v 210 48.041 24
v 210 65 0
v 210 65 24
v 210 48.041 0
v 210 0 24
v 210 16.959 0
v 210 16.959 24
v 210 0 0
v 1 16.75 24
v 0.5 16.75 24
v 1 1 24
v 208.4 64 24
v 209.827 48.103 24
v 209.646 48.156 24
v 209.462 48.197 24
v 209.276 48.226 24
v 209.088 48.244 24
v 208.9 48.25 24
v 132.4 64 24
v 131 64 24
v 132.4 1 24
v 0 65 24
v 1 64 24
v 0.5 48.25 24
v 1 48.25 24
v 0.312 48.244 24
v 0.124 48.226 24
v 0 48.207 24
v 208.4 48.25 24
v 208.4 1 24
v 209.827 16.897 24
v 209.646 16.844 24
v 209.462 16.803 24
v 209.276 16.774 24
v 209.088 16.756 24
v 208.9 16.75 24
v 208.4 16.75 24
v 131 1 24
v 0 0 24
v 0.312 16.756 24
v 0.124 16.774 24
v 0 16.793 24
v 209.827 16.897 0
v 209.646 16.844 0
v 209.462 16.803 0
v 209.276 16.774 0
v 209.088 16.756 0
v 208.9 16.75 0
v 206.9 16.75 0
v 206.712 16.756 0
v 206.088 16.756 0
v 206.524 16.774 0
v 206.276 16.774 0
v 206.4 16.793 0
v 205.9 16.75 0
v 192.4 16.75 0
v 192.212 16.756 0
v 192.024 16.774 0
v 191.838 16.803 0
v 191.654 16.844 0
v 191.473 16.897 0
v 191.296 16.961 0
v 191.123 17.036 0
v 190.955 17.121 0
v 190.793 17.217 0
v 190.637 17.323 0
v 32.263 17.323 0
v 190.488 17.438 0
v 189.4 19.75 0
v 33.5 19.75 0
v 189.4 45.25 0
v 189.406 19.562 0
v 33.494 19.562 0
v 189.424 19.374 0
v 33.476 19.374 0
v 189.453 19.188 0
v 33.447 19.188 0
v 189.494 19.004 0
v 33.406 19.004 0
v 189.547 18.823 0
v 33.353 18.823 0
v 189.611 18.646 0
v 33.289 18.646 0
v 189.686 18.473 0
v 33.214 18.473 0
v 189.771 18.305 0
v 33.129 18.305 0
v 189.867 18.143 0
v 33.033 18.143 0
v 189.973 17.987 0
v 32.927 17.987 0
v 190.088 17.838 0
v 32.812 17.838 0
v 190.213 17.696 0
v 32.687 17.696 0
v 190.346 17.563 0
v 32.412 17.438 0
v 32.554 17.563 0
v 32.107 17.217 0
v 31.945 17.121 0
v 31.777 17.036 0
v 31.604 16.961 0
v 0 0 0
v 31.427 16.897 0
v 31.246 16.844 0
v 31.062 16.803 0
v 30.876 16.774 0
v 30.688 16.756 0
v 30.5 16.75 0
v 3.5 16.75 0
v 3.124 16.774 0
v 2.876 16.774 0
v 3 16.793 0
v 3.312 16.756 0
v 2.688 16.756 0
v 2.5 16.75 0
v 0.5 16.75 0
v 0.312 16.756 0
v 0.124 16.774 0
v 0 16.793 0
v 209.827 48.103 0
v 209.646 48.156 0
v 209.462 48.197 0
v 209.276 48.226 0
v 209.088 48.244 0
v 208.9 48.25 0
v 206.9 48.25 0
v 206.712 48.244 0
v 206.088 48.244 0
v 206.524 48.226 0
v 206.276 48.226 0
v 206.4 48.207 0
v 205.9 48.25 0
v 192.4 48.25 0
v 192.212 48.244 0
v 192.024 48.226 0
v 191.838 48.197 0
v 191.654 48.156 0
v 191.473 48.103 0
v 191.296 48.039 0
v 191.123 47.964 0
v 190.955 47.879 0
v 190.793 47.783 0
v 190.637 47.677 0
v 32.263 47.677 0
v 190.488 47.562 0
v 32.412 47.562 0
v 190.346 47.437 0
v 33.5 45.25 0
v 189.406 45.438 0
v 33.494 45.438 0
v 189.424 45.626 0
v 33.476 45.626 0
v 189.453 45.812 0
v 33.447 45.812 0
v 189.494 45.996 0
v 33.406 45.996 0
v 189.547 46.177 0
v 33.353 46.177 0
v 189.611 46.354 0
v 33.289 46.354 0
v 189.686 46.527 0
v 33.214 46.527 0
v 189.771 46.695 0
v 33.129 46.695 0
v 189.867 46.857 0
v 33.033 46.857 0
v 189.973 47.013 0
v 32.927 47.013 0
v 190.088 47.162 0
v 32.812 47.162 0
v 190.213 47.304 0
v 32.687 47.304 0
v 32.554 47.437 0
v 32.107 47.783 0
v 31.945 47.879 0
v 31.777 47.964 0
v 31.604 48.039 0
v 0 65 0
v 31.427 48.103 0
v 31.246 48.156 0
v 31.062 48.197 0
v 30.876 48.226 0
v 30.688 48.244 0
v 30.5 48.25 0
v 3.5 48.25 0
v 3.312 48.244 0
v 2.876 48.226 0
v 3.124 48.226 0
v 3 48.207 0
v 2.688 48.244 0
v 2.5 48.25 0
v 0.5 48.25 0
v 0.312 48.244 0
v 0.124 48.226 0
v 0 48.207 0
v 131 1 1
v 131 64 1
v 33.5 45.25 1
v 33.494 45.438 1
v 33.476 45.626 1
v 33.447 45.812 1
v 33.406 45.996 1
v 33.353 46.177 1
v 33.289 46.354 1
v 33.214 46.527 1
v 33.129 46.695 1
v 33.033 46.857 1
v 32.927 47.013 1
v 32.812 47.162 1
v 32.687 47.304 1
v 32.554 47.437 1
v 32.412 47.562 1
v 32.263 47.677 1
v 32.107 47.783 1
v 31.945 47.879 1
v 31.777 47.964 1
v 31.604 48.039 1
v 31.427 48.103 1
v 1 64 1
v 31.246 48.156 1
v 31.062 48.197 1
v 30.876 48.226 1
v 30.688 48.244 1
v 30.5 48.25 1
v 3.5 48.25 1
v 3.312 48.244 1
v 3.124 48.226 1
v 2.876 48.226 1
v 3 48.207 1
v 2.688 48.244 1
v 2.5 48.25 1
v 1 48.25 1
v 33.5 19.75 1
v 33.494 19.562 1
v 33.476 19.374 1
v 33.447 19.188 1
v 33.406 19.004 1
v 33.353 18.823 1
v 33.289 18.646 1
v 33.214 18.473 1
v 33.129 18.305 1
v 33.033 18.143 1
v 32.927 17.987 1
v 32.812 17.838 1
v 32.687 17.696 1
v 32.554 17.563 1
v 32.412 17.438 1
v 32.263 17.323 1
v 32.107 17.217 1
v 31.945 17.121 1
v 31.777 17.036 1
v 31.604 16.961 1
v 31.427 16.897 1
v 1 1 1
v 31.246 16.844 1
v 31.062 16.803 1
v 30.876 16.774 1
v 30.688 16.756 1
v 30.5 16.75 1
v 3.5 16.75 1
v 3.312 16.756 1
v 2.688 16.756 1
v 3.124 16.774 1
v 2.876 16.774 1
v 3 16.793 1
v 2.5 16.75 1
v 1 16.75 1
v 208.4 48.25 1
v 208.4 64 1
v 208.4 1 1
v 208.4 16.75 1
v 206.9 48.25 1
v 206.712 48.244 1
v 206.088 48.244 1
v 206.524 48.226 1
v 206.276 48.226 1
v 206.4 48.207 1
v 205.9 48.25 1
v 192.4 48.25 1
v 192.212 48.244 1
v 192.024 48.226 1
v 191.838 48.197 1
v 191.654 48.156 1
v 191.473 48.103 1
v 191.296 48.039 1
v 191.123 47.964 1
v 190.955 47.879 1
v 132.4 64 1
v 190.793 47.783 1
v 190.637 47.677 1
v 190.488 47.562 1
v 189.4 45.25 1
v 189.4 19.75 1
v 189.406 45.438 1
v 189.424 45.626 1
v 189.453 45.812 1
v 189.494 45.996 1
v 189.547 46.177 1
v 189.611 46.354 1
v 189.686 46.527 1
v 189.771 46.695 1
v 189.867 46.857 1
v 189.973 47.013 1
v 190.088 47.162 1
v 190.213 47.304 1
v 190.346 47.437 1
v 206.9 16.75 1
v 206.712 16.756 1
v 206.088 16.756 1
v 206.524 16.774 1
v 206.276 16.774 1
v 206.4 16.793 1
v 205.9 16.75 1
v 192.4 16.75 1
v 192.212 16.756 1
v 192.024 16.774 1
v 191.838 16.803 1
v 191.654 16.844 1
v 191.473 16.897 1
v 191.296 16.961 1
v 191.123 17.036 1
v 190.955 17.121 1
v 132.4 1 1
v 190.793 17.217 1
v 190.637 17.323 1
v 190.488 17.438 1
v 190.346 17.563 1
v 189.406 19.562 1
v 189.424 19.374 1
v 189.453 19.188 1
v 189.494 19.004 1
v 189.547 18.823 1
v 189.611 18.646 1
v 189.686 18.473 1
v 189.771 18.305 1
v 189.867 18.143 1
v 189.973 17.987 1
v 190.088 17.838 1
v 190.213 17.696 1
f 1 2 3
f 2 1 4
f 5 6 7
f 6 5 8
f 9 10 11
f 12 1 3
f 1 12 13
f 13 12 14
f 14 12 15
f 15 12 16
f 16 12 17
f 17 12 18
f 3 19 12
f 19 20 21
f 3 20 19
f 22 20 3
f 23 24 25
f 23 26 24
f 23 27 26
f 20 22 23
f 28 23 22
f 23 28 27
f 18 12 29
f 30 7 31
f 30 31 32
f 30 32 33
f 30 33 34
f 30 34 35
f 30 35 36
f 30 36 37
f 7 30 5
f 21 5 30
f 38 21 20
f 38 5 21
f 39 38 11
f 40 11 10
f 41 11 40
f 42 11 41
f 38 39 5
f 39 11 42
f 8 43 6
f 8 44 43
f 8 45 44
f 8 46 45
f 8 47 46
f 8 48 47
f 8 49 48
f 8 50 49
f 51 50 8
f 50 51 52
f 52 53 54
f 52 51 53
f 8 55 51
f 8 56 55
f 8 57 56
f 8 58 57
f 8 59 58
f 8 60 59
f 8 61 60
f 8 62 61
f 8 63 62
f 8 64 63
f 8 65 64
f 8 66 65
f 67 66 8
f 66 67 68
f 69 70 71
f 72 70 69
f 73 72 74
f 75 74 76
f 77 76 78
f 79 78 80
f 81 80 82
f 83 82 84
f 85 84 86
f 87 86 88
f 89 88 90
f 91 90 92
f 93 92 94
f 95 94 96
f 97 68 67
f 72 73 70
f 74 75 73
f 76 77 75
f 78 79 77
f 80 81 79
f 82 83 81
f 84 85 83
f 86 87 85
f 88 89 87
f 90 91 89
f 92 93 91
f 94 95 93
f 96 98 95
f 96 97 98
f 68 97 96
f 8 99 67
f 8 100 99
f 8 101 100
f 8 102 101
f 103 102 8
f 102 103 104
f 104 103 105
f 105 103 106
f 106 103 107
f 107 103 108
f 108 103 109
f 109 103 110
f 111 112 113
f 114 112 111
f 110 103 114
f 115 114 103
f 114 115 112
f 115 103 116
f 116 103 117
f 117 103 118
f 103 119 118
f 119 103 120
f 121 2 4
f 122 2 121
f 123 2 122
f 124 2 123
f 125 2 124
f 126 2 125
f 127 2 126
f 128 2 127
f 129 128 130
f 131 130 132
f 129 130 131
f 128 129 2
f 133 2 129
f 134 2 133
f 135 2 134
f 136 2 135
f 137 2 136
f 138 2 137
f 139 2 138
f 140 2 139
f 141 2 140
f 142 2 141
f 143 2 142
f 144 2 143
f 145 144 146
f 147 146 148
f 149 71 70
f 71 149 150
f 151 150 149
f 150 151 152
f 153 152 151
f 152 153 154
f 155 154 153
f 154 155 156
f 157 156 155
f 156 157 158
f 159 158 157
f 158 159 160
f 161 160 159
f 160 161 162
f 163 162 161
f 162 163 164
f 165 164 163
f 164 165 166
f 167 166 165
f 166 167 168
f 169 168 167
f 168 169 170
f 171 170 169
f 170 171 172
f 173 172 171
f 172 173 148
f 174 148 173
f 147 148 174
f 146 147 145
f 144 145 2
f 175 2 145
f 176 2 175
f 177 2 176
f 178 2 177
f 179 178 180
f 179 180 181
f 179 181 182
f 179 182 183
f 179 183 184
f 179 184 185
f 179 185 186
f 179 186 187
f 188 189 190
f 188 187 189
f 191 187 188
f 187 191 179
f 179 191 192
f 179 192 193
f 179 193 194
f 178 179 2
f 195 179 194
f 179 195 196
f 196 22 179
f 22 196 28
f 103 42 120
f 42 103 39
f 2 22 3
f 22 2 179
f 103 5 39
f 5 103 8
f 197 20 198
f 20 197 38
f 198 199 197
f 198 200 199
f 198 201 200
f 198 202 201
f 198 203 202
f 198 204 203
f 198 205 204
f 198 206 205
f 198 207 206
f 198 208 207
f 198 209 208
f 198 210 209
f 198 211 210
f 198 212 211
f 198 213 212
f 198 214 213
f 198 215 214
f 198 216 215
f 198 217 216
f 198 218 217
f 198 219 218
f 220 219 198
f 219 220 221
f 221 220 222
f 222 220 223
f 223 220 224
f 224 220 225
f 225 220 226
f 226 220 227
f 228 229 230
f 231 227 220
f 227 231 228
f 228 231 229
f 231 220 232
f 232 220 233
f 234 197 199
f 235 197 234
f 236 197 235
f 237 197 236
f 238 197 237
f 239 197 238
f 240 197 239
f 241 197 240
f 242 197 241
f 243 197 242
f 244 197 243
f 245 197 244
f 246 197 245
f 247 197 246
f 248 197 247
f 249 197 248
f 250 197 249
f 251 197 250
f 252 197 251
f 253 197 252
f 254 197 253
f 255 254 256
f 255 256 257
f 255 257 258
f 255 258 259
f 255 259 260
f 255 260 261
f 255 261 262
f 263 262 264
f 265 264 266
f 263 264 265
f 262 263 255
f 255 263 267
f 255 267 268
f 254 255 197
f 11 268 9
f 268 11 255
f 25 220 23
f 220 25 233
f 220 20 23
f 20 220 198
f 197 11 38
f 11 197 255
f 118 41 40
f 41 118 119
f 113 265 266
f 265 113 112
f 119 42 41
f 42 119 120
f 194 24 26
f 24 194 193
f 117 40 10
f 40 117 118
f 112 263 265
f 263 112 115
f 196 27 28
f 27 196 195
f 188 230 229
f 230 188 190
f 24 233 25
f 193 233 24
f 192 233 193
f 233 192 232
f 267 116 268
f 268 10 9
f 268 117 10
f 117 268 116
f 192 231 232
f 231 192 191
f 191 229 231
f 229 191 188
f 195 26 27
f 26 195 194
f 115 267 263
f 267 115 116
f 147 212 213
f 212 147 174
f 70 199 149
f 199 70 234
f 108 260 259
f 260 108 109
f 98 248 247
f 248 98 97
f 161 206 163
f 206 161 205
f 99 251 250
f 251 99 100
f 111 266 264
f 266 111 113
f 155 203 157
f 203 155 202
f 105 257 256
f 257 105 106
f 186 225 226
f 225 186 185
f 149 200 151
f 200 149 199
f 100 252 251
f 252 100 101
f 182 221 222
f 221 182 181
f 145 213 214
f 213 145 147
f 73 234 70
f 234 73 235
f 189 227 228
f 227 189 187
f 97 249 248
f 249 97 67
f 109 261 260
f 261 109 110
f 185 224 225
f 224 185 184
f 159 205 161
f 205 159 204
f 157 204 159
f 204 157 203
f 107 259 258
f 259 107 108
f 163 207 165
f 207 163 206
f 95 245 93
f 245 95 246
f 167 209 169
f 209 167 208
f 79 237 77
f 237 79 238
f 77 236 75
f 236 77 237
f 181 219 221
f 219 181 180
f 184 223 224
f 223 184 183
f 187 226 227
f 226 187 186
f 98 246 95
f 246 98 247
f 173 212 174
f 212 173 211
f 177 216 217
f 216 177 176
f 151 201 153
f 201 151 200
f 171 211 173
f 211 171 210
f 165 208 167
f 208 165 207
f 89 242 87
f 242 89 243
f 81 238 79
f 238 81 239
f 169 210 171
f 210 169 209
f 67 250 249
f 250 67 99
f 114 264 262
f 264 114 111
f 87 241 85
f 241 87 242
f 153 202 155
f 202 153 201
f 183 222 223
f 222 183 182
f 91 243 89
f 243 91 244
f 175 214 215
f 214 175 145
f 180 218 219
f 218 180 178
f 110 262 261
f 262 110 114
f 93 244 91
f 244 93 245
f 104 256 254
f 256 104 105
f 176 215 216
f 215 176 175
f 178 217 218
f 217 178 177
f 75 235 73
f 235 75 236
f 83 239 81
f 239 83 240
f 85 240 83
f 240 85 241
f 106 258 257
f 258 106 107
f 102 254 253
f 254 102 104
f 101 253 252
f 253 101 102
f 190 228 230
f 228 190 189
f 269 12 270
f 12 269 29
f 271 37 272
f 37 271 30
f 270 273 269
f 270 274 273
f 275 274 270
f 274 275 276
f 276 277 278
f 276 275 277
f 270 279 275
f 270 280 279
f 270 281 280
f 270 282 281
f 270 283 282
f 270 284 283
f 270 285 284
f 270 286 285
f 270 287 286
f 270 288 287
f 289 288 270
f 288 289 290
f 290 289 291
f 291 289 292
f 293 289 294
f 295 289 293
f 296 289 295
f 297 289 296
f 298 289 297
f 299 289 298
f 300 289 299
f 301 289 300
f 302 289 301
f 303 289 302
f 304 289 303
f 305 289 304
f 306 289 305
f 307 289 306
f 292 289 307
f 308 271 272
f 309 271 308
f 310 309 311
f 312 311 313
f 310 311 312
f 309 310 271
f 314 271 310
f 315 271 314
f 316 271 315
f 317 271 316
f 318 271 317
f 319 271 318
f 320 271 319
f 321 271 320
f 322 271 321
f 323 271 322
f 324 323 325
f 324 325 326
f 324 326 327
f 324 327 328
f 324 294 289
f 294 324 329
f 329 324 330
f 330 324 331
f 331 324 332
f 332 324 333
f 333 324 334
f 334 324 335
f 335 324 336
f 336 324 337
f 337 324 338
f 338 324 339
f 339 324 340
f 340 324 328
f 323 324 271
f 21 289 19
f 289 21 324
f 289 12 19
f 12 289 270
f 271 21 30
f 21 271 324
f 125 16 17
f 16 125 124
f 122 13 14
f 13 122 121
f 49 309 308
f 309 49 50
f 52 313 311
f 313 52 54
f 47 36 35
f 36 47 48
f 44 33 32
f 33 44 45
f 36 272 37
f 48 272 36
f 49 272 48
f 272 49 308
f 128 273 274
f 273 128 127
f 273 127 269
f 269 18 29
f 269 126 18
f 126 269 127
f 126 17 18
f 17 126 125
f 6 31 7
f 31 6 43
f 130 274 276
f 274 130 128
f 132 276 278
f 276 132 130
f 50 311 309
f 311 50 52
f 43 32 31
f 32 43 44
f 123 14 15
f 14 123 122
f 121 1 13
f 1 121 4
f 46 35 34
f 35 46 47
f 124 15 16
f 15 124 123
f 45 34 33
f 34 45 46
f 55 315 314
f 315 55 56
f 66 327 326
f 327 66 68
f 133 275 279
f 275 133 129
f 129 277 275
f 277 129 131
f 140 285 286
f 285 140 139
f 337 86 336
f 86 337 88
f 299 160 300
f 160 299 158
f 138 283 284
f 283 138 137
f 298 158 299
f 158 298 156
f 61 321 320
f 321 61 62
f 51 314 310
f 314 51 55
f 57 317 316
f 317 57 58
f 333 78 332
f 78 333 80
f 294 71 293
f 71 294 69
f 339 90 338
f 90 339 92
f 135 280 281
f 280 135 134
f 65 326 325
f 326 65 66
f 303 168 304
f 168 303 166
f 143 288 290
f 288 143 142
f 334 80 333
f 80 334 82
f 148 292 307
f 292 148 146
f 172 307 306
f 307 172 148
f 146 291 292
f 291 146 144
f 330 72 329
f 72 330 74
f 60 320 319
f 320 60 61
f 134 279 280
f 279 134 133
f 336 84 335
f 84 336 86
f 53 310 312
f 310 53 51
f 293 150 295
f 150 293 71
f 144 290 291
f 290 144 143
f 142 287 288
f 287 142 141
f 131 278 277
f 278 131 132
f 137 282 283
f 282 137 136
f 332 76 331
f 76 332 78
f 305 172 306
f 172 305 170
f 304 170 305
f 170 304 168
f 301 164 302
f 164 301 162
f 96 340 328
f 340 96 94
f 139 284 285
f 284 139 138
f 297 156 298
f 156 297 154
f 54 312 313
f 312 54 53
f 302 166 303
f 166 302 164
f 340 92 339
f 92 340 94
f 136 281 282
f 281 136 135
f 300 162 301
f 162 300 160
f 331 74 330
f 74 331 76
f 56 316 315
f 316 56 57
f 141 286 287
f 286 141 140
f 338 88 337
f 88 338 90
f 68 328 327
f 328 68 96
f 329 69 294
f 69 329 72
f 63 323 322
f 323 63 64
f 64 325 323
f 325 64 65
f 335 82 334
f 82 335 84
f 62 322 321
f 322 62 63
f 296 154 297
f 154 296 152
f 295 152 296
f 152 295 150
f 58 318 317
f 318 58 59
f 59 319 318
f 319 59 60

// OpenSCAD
include <boardgame_insert_toolkit_lib.2.scad>;

// determines whether lids are output.
g_b_print_lid = true;

// determines whether boxes are output.
g_b_print_box = true; 

// Focus on one box
g_isolated_print_box = ""; 

// Used to visualize how all of the boxes fit together. 
g_b_visualization = false;          
        
// this is the outer wall thickness. 
//Default = 1.5mm
g_wall_thickness = 1.0;

// The tolerance value is extra space put between planes of the lid and box that fit together.
// Increase the tolerance to loosen the fit and decrease it to tighten it.
//
// Note that the tolerance is applied exclusively to the lid.
// So if the lid is too tight or too loose, change this value ( up for looser fit, down for tighter fit ) and 
// you only need to reprint the lid.
// 
// The exception is the stackable box, where the bottom of the box is the lid of the box below,
// in which case the tolerance also affects that box bottom.
//
g_tolerance = 0.15;

// This adjusts the position of the lid detents downward. 
// The larger the value, the bigger the gap between the lid and the box.
g_tolerance_detents_pos = 0.1;

aw_size_x = 210.0;
aw_size_y = 65.0;
aw_size_z = 24.0;


data =
  [
    [
      "simple box",
      [
        [ BOX_SIZE_XYZ, [aw_size_x, aw_size_y, aw_size_z] ],
        [ BOX_NO_LID_B, t],
        [
          BOX_COMPONENT,
          [
            [
              CMP_COMPARTMENT_SIZE_XYZ,
              [
                130,
                (aw_size_y - 1.0 - 1.0),
                aw_size_z - g_wall_thickness
              ]
            ],
            [ CMP_NUM_COMPARTMENTS_XY, [1, 1] ],
            //[ CMP_FILLET_RADIUS, 5.0 ],
            [ POSITION_XY, [0, 0] ],
            [ CMP_CUTOUT_SIDES_4B,   [f,f,t,f]],
            //[ CMP_CUTOUT_DEPTH_PCT,  20],
            //[ CMP_CUTOUT_WIDTH_PCT,  50],
            [ CMP_CUTOUT_HEIGHT_PCT, 100], 
          ]
        ],
        [
          BOX_COMPONENT,
          [
            [
              CMP_COMPARTMENT_SIZE_XYZ,
              [
                76,
                (aw_size_y - 1.0 - 1.0),
                aw_size_z - g_wall_thickness
              ]
            ],
            [ CMP_NUM_COMPARTMENTS_XY, [1, 1] ],
            //[ CMP_FILLET_RADIUS, 5.0 ],
            [ POSITION_XY, [131.4, 0] ],
            [ CMP_CUTOUT_SIDES_4B,   [f,f,f,t]],
            //[ CMP_CUTOUT_DEPTH_PCT,  20],
            //[ CMP_CUTOUT_WIDTH_PCT,  50],
            [ CMP_CUTOUT_HEIGHT_PCT, 100], 
          ]
        ],
      ]
    ]
  ];

MakeAll();
